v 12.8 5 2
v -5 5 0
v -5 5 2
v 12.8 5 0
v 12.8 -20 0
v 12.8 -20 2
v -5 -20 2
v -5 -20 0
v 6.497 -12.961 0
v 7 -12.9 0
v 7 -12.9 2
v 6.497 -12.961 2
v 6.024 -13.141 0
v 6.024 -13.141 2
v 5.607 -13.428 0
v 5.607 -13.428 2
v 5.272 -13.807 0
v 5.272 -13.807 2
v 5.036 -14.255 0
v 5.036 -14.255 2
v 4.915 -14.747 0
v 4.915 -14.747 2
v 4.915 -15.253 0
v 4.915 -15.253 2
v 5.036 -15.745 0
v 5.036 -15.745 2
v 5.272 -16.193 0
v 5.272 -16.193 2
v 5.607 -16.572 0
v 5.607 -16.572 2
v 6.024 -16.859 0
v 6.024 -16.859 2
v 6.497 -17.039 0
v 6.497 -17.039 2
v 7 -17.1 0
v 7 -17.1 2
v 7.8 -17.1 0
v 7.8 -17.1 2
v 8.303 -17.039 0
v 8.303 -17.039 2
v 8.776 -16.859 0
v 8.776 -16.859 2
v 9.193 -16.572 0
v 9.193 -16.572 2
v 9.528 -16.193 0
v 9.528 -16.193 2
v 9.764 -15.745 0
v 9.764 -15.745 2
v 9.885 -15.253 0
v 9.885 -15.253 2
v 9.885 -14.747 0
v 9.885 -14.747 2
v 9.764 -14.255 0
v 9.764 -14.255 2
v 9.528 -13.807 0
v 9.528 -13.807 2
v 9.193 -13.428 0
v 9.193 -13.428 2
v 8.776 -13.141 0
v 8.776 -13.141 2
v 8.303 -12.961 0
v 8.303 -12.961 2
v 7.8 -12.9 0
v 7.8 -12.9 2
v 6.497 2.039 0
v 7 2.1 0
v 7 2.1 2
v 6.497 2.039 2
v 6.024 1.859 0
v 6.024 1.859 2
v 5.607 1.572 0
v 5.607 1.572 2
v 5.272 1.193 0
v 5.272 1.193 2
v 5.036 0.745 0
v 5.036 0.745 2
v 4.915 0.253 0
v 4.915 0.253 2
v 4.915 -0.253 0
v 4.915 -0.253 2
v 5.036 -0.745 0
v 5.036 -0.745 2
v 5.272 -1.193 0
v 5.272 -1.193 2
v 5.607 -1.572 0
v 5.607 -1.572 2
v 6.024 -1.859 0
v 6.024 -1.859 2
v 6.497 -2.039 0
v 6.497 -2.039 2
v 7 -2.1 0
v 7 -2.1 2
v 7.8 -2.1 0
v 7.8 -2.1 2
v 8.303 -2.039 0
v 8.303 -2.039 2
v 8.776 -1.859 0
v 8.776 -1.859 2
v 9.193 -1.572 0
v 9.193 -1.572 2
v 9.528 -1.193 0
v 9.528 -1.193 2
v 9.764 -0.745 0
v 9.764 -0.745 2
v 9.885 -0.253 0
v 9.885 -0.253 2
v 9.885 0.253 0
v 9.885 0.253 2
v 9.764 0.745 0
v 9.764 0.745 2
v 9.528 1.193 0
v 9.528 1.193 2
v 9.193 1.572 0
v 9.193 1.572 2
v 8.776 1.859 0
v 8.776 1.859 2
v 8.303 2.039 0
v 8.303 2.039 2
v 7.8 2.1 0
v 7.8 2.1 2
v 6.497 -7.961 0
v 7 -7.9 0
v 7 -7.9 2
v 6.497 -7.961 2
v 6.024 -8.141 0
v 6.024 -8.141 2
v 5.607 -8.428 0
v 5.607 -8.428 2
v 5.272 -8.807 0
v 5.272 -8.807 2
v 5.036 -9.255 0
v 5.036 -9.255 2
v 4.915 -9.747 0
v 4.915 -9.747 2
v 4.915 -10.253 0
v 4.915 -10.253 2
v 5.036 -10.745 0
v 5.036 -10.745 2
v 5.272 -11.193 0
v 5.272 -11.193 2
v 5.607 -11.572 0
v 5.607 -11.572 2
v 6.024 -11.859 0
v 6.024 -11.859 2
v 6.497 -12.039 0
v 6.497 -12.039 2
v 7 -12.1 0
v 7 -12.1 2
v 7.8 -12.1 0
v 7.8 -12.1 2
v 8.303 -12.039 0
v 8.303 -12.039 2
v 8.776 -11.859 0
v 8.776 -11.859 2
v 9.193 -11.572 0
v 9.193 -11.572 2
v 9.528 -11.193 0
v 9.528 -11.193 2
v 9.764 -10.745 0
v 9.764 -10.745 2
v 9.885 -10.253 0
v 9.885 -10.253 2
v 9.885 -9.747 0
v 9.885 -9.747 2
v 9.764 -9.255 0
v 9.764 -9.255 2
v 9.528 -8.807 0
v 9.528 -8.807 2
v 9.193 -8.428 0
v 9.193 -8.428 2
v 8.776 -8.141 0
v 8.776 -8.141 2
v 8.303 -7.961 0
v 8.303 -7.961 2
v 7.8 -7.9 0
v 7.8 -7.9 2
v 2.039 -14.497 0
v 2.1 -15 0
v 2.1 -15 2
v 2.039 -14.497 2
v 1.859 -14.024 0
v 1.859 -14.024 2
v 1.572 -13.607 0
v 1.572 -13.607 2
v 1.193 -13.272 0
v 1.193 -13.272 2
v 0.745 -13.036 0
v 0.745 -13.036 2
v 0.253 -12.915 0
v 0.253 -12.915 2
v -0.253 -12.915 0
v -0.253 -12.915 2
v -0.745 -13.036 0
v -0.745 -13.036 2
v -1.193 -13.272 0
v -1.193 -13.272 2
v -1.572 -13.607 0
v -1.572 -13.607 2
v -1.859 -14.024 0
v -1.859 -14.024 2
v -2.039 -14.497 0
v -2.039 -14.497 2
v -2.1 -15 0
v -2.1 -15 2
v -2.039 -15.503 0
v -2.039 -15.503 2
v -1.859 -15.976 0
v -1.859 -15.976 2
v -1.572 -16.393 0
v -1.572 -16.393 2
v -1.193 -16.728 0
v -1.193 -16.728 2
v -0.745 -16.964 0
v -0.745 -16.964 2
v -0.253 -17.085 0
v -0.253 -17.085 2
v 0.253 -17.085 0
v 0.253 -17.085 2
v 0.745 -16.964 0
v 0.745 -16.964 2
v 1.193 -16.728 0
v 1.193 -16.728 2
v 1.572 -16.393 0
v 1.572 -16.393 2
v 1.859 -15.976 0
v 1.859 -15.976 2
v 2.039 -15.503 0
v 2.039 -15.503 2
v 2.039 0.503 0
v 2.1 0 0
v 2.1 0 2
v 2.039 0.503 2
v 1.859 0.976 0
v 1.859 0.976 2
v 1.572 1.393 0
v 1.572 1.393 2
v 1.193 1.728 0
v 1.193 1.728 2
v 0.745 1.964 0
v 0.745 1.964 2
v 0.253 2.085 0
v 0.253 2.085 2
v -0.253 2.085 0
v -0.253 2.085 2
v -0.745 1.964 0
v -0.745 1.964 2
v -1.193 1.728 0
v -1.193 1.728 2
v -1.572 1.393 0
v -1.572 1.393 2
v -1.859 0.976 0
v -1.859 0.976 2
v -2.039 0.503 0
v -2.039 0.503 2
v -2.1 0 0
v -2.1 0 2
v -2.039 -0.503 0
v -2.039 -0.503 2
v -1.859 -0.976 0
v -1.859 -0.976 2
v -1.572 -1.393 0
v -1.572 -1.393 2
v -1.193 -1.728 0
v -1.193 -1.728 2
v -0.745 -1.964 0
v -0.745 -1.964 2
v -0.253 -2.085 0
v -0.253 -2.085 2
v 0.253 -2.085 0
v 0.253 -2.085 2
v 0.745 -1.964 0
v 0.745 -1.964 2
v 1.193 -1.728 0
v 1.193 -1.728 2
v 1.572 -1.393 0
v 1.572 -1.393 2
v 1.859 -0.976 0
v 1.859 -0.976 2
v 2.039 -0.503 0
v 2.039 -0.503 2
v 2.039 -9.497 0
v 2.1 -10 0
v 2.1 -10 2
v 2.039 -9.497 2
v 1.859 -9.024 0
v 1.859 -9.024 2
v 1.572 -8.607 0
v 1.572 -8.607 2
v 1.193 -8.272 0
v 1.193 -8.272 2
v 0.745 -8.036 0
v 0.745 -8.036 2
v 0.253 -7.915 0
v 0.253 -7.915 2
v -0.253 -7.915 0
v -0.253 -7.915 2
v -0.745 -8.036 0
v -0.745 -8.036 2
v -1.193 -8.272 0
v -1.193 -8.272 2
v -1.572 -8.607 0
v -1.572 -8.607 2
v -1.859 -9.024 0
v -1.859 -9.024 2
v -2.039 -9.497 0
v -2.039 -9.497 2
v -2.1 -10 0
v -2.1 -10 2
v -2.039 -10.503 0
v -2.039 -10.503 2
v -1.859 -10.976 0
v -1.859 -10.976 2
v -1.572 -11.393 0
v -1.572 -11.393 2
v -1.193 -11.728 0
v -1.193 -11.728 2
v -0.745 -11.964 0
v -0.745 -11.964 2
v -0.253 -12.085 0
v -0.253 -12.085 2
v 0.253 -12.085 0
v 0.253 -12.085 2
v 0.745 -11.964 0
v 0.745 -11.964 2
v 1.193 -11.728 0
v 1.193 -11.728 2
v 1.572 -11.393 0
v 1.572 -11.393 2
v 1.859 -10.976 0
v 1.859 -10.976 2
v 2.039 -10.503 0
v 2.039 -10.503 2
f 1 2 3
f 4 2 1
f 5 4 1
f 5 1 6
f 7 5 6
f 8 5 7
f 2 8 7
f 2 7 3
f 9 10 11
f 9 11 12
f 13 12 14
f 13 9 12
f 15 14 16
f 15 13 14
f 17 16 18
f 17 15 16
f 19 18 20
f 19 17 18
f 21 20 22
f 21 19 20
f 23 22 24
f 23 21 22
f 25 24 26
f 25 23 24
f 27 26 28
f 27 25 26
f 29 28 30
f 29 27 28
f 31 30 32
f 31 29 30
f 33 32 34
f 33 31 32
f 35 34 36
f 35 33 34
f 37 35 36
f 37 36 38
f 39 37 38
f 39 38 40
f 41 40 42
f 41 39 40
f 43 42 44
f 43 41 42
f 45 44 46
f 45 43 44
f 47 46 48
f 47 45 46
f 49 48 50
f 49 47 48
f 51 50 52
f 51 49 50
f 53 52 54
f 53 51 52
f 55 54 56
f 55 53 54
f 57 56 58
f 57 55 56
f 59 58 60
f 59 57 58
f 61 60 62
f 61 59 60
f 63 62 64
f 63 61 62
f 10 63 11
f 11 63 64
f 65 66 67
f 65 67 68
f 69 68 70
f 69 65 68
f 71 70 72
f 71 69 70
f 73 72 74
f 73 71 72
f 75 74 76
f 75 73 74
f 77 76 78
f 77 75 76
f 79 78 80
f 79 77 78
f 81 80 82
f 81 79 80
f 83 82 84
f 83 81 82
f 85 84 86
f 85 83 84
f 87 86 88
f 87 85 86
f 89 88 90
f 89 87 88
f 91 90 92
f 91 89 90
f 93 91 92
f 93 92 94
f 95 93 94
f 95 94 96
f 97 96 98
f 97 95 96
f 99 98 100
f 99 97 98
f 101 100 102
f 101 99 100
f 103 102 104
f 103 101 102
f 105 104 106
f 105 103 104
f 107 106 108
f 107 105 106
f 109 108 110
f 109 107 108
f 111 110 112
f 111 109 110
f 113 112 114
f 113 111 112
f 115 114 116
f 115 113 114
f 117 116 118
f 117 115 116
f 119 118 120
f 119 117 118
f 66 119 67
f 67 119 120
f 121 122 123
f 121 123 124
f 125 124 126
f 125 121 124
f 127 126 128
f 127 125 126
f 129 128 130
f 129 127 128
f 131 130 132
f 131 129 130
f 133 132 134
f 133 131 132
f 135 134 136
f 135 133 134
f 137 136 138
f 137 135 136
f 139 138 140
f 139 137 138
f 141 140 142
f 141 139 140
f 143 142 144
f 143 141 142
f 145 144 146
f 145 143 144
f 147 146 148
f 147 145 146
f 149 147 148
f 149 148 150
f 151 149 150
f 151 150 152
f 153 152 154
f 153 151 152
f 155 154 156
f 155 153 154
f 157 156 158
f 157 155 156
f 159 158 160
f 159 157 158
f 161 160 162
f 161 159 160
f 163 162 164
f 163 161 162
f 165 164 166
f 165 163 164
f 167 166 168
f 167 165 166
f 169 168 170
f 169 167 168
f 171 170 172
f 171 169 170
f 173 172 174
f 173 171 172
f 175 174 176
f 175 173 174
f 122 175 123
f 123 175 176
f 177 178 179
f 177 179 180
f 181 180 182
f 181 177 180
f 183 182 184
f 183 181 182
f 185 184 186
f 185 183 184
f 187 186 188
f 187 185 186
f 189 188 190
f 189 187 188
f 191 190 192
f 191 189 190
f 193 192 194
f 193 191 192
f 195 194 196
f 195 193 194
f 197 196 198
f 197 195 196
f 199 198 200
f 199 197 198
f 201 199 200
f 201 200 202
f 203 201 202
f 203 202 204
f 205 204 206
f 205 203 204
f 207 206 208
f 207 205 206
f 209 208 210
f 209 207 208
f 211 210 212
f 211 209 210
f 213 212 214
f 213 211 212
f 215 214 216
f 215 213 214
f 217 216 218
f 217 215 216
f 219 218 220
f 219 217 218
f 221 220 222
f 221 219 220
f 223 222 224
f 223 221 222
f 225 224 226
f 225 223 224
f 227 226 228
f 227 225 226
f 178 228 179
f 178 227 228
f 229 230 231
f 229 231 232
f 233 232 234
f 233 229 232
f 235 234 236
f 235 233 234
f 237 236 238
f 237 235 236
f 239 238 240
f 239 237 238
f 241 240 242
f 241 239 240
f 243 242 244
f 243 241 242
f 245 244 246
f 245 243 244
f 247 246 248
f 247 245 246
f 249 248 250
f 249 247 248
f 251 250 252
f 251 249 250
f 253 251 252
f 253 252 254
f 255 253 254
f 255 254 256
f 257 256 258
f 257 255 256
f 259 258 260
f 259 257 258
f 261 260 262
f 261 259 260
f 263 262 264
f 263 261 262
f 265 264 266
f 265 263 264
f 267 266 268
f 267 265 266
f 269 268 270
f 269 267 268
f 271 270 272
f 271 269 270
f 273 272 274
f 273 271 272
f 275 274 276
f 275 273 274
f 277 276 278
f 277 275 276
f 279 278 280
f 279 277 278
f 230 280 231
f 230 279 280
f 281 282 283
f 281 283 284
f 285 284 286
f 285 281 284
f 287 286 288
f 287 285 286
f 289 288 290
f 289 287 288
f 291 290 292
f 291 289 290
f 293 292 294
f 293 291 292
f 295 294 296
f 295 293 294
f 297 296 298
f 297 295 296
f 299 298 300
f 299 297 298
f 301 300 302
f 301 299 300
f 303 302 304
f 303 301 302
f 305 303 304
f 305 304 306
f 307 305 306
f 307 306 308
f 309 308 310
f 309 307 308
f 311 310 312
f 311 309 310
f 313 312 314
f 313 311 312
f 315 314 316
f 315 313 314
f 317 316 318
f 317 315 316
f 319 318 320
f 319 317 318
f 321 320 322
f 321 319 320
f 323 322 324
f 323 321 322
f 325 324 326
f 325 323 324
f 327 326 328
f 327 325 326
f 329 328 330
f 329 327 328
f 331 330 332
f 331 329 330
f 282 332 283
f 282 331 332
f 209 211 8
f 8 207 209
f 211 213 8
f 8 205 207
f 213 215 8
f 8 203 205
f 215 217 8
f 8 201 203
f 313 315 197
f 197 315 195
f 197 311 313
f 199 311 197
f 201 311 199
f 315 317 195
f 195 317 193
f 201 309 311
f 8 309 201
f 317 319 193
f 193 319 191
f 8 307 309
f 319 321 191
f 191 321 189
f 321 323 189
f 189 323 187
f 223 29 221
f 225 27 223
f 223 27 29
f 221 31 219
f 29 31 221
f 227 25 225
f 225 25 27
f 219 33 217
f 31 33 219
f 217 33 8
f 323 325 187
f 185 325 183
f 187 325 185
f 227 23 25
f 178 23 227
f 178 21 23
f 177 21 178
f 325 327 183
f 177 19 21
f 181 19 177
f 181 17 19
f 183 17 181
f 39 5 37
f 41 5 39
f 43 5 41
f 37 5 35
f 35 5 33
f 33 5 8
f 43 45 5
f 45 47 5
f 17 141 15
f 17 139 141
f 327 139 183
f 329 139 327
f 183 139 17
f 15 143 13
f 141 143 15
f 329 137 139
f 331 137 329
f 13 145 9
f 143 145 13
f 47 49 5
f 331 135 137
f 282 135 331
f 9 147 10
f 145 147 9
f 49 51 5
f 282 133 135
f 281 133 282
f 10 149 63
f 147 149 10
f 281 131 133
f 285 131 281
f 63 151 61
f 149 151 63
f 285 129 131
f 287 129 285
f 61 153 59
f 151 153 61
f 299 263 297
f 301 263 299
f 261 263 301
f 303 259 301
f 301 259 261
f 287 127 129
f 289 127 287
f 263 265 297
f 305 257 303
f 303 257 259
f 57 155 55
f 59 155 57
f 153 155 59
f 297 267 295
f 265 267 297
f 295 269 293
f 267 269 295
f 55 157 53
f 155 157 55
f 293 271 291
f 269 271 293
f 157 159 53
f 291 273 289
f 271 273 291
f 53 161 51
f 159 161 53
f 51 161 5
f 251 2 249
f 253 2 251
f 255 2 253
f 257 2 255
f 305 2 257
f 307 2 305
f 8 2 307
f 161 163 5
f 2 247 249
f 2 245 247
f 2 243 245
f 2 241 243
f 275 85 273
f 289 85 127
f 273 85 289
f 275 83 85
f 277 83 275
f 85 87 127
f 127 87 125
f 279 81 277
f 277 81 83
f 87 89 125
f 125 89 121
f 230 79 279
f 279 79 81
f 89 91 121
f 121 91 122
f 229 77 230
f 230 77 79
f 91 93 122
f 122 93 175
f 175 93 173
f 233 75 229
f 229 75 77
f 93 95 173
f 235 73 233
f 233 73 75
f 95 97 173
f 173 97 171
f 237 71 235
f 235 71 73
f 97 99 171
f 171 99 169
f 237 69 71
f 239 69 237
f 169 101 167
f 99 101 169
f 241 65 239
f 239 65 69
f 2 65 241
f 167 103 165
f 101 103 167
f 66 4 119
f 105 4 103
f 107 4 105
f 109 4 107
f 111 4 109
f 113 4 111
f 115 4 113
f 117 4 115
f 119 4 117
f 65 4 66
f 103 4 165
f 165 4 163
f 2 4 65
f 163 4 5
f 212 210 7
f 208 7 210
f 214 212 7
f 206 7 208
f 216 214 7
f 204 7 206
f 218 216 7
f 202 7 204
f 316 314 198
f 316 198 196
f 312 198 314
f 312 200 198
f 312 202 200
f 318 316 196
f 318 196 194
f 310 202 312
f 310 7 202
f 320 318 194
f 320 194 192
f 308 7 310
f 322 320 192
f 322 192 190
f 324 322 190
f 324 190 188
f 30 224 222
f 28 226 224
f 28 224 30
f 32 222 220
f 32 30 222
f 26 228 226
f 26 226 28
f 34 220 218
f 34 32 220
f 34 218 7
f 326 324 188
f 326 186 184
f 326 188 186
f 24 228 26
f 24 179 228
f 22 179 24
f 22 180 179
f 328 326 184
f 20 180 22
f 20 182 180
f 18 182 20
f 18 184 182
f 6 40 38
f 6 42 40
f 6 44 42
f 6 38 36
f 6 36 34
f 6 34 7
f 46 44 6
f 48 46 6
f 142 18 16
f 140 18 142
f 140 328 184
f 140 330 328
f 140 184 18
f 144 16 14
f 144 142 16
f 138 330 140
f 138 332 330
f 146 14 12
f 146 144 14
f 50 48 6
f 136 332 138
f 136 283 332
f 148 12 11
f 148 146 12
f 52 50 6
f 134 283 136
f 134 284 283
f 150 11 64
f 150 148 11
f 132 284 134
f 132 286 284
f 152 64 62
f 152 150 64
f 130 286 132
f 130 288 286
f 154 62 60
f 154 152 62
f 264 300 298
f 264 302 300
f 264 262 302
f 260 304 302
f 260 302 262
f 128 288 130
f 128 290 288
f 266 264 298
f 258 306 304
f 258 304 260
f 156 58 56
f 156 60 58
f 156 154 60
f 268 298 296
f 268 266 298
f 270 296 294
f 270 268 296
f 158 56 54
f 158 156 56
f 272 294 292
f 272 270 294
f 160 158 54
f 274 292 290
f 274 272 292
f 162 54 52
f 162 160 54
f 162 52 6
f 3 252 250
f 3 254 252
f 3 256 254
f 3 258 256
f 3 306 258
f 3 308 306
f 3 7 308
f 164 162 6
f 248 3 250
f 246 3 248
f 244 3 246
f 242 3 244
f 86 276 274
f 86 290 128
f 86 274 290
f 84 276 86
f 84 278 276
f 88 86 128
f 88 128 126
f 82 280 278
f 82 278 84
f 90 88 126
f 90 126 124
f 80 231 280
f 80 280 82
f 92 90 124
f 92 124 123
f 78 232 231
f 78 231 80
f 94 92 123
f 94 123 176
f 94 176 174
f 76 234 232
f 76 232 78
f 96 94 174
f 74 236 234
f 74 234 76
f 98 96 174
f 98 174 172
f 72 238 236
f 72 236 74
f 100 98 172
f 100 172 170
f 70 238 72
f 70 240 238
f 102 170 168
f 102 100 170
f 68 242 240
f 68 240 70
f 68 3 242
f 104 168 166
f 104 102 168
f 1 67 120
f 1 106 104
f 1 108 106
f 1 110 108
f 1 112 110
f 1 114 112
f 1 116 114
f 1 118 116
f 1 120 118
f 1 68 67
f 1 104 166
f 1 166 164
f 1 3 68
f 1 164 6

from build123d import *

# Parameters (mm, degrees)
SKETCH_W      = 17.8
SKETCH_H      = 25
SKETCH_R      = 2.1
EXTRUDE_DEPTH = 2


with BuildPart() as part:
    # Sketch → Extrude (new body)
    with BuildSketch(Plane.XY):
        with Locations((3.9, -7.5)):
            Rectangle(SKETCH_W, SKETCH_H)
        Circle(SKETCH_R, mode=Mode.SUBTRACT)
        with Locations((0, -15)):
            Circle(SKETCH_R, mode=Mode.SUBTRACT)
        with Locations((0, -10)):
            Circle(SKETCH_R, mode=Mode.SUBTRACT)
        with BuildLine():
            ThreePointArc((7, 2.1), (4.9, 0), (7, -2.1))
            Line((7, -2.1), (7.8, -2.1))
            ThreePointArc((7.8, -2.1), (9.9, 0), (7.8, 2.1))
            Line((7, 2.1), (7.8, 2.1))
        make_face(mode=Mode.SUBTRACT)
        with BuildLine():
            ThreePointArc((7, -12.9), (4.9, -15), (7, -17.1))
            Line((7, -17.1), (7.8, -17.1))
            ThreePointArc((7.8, -17.1), (9.9, -15), (7.8, -12.9))
            Line((7, -12.9), (7.8, -12.9))
        make_face(mode=Mode.SUBTRACT)
        with BuildLine():
            ThreePointArc((7, -7.9), (4.9, -10), (7, -12.1))
            Line((7, -12.1), (7.8, -12.1))
            ThreePointArc((7.8, -12.1), (9.9, -10), (7.8, -7.9))
            Line((7, -7.9), (7.8, -7.9))
        make_face(mode=Mode.SUBTRACT)
    extrude(amount=EXTRUDE_DEPTH)


solid = part.part
